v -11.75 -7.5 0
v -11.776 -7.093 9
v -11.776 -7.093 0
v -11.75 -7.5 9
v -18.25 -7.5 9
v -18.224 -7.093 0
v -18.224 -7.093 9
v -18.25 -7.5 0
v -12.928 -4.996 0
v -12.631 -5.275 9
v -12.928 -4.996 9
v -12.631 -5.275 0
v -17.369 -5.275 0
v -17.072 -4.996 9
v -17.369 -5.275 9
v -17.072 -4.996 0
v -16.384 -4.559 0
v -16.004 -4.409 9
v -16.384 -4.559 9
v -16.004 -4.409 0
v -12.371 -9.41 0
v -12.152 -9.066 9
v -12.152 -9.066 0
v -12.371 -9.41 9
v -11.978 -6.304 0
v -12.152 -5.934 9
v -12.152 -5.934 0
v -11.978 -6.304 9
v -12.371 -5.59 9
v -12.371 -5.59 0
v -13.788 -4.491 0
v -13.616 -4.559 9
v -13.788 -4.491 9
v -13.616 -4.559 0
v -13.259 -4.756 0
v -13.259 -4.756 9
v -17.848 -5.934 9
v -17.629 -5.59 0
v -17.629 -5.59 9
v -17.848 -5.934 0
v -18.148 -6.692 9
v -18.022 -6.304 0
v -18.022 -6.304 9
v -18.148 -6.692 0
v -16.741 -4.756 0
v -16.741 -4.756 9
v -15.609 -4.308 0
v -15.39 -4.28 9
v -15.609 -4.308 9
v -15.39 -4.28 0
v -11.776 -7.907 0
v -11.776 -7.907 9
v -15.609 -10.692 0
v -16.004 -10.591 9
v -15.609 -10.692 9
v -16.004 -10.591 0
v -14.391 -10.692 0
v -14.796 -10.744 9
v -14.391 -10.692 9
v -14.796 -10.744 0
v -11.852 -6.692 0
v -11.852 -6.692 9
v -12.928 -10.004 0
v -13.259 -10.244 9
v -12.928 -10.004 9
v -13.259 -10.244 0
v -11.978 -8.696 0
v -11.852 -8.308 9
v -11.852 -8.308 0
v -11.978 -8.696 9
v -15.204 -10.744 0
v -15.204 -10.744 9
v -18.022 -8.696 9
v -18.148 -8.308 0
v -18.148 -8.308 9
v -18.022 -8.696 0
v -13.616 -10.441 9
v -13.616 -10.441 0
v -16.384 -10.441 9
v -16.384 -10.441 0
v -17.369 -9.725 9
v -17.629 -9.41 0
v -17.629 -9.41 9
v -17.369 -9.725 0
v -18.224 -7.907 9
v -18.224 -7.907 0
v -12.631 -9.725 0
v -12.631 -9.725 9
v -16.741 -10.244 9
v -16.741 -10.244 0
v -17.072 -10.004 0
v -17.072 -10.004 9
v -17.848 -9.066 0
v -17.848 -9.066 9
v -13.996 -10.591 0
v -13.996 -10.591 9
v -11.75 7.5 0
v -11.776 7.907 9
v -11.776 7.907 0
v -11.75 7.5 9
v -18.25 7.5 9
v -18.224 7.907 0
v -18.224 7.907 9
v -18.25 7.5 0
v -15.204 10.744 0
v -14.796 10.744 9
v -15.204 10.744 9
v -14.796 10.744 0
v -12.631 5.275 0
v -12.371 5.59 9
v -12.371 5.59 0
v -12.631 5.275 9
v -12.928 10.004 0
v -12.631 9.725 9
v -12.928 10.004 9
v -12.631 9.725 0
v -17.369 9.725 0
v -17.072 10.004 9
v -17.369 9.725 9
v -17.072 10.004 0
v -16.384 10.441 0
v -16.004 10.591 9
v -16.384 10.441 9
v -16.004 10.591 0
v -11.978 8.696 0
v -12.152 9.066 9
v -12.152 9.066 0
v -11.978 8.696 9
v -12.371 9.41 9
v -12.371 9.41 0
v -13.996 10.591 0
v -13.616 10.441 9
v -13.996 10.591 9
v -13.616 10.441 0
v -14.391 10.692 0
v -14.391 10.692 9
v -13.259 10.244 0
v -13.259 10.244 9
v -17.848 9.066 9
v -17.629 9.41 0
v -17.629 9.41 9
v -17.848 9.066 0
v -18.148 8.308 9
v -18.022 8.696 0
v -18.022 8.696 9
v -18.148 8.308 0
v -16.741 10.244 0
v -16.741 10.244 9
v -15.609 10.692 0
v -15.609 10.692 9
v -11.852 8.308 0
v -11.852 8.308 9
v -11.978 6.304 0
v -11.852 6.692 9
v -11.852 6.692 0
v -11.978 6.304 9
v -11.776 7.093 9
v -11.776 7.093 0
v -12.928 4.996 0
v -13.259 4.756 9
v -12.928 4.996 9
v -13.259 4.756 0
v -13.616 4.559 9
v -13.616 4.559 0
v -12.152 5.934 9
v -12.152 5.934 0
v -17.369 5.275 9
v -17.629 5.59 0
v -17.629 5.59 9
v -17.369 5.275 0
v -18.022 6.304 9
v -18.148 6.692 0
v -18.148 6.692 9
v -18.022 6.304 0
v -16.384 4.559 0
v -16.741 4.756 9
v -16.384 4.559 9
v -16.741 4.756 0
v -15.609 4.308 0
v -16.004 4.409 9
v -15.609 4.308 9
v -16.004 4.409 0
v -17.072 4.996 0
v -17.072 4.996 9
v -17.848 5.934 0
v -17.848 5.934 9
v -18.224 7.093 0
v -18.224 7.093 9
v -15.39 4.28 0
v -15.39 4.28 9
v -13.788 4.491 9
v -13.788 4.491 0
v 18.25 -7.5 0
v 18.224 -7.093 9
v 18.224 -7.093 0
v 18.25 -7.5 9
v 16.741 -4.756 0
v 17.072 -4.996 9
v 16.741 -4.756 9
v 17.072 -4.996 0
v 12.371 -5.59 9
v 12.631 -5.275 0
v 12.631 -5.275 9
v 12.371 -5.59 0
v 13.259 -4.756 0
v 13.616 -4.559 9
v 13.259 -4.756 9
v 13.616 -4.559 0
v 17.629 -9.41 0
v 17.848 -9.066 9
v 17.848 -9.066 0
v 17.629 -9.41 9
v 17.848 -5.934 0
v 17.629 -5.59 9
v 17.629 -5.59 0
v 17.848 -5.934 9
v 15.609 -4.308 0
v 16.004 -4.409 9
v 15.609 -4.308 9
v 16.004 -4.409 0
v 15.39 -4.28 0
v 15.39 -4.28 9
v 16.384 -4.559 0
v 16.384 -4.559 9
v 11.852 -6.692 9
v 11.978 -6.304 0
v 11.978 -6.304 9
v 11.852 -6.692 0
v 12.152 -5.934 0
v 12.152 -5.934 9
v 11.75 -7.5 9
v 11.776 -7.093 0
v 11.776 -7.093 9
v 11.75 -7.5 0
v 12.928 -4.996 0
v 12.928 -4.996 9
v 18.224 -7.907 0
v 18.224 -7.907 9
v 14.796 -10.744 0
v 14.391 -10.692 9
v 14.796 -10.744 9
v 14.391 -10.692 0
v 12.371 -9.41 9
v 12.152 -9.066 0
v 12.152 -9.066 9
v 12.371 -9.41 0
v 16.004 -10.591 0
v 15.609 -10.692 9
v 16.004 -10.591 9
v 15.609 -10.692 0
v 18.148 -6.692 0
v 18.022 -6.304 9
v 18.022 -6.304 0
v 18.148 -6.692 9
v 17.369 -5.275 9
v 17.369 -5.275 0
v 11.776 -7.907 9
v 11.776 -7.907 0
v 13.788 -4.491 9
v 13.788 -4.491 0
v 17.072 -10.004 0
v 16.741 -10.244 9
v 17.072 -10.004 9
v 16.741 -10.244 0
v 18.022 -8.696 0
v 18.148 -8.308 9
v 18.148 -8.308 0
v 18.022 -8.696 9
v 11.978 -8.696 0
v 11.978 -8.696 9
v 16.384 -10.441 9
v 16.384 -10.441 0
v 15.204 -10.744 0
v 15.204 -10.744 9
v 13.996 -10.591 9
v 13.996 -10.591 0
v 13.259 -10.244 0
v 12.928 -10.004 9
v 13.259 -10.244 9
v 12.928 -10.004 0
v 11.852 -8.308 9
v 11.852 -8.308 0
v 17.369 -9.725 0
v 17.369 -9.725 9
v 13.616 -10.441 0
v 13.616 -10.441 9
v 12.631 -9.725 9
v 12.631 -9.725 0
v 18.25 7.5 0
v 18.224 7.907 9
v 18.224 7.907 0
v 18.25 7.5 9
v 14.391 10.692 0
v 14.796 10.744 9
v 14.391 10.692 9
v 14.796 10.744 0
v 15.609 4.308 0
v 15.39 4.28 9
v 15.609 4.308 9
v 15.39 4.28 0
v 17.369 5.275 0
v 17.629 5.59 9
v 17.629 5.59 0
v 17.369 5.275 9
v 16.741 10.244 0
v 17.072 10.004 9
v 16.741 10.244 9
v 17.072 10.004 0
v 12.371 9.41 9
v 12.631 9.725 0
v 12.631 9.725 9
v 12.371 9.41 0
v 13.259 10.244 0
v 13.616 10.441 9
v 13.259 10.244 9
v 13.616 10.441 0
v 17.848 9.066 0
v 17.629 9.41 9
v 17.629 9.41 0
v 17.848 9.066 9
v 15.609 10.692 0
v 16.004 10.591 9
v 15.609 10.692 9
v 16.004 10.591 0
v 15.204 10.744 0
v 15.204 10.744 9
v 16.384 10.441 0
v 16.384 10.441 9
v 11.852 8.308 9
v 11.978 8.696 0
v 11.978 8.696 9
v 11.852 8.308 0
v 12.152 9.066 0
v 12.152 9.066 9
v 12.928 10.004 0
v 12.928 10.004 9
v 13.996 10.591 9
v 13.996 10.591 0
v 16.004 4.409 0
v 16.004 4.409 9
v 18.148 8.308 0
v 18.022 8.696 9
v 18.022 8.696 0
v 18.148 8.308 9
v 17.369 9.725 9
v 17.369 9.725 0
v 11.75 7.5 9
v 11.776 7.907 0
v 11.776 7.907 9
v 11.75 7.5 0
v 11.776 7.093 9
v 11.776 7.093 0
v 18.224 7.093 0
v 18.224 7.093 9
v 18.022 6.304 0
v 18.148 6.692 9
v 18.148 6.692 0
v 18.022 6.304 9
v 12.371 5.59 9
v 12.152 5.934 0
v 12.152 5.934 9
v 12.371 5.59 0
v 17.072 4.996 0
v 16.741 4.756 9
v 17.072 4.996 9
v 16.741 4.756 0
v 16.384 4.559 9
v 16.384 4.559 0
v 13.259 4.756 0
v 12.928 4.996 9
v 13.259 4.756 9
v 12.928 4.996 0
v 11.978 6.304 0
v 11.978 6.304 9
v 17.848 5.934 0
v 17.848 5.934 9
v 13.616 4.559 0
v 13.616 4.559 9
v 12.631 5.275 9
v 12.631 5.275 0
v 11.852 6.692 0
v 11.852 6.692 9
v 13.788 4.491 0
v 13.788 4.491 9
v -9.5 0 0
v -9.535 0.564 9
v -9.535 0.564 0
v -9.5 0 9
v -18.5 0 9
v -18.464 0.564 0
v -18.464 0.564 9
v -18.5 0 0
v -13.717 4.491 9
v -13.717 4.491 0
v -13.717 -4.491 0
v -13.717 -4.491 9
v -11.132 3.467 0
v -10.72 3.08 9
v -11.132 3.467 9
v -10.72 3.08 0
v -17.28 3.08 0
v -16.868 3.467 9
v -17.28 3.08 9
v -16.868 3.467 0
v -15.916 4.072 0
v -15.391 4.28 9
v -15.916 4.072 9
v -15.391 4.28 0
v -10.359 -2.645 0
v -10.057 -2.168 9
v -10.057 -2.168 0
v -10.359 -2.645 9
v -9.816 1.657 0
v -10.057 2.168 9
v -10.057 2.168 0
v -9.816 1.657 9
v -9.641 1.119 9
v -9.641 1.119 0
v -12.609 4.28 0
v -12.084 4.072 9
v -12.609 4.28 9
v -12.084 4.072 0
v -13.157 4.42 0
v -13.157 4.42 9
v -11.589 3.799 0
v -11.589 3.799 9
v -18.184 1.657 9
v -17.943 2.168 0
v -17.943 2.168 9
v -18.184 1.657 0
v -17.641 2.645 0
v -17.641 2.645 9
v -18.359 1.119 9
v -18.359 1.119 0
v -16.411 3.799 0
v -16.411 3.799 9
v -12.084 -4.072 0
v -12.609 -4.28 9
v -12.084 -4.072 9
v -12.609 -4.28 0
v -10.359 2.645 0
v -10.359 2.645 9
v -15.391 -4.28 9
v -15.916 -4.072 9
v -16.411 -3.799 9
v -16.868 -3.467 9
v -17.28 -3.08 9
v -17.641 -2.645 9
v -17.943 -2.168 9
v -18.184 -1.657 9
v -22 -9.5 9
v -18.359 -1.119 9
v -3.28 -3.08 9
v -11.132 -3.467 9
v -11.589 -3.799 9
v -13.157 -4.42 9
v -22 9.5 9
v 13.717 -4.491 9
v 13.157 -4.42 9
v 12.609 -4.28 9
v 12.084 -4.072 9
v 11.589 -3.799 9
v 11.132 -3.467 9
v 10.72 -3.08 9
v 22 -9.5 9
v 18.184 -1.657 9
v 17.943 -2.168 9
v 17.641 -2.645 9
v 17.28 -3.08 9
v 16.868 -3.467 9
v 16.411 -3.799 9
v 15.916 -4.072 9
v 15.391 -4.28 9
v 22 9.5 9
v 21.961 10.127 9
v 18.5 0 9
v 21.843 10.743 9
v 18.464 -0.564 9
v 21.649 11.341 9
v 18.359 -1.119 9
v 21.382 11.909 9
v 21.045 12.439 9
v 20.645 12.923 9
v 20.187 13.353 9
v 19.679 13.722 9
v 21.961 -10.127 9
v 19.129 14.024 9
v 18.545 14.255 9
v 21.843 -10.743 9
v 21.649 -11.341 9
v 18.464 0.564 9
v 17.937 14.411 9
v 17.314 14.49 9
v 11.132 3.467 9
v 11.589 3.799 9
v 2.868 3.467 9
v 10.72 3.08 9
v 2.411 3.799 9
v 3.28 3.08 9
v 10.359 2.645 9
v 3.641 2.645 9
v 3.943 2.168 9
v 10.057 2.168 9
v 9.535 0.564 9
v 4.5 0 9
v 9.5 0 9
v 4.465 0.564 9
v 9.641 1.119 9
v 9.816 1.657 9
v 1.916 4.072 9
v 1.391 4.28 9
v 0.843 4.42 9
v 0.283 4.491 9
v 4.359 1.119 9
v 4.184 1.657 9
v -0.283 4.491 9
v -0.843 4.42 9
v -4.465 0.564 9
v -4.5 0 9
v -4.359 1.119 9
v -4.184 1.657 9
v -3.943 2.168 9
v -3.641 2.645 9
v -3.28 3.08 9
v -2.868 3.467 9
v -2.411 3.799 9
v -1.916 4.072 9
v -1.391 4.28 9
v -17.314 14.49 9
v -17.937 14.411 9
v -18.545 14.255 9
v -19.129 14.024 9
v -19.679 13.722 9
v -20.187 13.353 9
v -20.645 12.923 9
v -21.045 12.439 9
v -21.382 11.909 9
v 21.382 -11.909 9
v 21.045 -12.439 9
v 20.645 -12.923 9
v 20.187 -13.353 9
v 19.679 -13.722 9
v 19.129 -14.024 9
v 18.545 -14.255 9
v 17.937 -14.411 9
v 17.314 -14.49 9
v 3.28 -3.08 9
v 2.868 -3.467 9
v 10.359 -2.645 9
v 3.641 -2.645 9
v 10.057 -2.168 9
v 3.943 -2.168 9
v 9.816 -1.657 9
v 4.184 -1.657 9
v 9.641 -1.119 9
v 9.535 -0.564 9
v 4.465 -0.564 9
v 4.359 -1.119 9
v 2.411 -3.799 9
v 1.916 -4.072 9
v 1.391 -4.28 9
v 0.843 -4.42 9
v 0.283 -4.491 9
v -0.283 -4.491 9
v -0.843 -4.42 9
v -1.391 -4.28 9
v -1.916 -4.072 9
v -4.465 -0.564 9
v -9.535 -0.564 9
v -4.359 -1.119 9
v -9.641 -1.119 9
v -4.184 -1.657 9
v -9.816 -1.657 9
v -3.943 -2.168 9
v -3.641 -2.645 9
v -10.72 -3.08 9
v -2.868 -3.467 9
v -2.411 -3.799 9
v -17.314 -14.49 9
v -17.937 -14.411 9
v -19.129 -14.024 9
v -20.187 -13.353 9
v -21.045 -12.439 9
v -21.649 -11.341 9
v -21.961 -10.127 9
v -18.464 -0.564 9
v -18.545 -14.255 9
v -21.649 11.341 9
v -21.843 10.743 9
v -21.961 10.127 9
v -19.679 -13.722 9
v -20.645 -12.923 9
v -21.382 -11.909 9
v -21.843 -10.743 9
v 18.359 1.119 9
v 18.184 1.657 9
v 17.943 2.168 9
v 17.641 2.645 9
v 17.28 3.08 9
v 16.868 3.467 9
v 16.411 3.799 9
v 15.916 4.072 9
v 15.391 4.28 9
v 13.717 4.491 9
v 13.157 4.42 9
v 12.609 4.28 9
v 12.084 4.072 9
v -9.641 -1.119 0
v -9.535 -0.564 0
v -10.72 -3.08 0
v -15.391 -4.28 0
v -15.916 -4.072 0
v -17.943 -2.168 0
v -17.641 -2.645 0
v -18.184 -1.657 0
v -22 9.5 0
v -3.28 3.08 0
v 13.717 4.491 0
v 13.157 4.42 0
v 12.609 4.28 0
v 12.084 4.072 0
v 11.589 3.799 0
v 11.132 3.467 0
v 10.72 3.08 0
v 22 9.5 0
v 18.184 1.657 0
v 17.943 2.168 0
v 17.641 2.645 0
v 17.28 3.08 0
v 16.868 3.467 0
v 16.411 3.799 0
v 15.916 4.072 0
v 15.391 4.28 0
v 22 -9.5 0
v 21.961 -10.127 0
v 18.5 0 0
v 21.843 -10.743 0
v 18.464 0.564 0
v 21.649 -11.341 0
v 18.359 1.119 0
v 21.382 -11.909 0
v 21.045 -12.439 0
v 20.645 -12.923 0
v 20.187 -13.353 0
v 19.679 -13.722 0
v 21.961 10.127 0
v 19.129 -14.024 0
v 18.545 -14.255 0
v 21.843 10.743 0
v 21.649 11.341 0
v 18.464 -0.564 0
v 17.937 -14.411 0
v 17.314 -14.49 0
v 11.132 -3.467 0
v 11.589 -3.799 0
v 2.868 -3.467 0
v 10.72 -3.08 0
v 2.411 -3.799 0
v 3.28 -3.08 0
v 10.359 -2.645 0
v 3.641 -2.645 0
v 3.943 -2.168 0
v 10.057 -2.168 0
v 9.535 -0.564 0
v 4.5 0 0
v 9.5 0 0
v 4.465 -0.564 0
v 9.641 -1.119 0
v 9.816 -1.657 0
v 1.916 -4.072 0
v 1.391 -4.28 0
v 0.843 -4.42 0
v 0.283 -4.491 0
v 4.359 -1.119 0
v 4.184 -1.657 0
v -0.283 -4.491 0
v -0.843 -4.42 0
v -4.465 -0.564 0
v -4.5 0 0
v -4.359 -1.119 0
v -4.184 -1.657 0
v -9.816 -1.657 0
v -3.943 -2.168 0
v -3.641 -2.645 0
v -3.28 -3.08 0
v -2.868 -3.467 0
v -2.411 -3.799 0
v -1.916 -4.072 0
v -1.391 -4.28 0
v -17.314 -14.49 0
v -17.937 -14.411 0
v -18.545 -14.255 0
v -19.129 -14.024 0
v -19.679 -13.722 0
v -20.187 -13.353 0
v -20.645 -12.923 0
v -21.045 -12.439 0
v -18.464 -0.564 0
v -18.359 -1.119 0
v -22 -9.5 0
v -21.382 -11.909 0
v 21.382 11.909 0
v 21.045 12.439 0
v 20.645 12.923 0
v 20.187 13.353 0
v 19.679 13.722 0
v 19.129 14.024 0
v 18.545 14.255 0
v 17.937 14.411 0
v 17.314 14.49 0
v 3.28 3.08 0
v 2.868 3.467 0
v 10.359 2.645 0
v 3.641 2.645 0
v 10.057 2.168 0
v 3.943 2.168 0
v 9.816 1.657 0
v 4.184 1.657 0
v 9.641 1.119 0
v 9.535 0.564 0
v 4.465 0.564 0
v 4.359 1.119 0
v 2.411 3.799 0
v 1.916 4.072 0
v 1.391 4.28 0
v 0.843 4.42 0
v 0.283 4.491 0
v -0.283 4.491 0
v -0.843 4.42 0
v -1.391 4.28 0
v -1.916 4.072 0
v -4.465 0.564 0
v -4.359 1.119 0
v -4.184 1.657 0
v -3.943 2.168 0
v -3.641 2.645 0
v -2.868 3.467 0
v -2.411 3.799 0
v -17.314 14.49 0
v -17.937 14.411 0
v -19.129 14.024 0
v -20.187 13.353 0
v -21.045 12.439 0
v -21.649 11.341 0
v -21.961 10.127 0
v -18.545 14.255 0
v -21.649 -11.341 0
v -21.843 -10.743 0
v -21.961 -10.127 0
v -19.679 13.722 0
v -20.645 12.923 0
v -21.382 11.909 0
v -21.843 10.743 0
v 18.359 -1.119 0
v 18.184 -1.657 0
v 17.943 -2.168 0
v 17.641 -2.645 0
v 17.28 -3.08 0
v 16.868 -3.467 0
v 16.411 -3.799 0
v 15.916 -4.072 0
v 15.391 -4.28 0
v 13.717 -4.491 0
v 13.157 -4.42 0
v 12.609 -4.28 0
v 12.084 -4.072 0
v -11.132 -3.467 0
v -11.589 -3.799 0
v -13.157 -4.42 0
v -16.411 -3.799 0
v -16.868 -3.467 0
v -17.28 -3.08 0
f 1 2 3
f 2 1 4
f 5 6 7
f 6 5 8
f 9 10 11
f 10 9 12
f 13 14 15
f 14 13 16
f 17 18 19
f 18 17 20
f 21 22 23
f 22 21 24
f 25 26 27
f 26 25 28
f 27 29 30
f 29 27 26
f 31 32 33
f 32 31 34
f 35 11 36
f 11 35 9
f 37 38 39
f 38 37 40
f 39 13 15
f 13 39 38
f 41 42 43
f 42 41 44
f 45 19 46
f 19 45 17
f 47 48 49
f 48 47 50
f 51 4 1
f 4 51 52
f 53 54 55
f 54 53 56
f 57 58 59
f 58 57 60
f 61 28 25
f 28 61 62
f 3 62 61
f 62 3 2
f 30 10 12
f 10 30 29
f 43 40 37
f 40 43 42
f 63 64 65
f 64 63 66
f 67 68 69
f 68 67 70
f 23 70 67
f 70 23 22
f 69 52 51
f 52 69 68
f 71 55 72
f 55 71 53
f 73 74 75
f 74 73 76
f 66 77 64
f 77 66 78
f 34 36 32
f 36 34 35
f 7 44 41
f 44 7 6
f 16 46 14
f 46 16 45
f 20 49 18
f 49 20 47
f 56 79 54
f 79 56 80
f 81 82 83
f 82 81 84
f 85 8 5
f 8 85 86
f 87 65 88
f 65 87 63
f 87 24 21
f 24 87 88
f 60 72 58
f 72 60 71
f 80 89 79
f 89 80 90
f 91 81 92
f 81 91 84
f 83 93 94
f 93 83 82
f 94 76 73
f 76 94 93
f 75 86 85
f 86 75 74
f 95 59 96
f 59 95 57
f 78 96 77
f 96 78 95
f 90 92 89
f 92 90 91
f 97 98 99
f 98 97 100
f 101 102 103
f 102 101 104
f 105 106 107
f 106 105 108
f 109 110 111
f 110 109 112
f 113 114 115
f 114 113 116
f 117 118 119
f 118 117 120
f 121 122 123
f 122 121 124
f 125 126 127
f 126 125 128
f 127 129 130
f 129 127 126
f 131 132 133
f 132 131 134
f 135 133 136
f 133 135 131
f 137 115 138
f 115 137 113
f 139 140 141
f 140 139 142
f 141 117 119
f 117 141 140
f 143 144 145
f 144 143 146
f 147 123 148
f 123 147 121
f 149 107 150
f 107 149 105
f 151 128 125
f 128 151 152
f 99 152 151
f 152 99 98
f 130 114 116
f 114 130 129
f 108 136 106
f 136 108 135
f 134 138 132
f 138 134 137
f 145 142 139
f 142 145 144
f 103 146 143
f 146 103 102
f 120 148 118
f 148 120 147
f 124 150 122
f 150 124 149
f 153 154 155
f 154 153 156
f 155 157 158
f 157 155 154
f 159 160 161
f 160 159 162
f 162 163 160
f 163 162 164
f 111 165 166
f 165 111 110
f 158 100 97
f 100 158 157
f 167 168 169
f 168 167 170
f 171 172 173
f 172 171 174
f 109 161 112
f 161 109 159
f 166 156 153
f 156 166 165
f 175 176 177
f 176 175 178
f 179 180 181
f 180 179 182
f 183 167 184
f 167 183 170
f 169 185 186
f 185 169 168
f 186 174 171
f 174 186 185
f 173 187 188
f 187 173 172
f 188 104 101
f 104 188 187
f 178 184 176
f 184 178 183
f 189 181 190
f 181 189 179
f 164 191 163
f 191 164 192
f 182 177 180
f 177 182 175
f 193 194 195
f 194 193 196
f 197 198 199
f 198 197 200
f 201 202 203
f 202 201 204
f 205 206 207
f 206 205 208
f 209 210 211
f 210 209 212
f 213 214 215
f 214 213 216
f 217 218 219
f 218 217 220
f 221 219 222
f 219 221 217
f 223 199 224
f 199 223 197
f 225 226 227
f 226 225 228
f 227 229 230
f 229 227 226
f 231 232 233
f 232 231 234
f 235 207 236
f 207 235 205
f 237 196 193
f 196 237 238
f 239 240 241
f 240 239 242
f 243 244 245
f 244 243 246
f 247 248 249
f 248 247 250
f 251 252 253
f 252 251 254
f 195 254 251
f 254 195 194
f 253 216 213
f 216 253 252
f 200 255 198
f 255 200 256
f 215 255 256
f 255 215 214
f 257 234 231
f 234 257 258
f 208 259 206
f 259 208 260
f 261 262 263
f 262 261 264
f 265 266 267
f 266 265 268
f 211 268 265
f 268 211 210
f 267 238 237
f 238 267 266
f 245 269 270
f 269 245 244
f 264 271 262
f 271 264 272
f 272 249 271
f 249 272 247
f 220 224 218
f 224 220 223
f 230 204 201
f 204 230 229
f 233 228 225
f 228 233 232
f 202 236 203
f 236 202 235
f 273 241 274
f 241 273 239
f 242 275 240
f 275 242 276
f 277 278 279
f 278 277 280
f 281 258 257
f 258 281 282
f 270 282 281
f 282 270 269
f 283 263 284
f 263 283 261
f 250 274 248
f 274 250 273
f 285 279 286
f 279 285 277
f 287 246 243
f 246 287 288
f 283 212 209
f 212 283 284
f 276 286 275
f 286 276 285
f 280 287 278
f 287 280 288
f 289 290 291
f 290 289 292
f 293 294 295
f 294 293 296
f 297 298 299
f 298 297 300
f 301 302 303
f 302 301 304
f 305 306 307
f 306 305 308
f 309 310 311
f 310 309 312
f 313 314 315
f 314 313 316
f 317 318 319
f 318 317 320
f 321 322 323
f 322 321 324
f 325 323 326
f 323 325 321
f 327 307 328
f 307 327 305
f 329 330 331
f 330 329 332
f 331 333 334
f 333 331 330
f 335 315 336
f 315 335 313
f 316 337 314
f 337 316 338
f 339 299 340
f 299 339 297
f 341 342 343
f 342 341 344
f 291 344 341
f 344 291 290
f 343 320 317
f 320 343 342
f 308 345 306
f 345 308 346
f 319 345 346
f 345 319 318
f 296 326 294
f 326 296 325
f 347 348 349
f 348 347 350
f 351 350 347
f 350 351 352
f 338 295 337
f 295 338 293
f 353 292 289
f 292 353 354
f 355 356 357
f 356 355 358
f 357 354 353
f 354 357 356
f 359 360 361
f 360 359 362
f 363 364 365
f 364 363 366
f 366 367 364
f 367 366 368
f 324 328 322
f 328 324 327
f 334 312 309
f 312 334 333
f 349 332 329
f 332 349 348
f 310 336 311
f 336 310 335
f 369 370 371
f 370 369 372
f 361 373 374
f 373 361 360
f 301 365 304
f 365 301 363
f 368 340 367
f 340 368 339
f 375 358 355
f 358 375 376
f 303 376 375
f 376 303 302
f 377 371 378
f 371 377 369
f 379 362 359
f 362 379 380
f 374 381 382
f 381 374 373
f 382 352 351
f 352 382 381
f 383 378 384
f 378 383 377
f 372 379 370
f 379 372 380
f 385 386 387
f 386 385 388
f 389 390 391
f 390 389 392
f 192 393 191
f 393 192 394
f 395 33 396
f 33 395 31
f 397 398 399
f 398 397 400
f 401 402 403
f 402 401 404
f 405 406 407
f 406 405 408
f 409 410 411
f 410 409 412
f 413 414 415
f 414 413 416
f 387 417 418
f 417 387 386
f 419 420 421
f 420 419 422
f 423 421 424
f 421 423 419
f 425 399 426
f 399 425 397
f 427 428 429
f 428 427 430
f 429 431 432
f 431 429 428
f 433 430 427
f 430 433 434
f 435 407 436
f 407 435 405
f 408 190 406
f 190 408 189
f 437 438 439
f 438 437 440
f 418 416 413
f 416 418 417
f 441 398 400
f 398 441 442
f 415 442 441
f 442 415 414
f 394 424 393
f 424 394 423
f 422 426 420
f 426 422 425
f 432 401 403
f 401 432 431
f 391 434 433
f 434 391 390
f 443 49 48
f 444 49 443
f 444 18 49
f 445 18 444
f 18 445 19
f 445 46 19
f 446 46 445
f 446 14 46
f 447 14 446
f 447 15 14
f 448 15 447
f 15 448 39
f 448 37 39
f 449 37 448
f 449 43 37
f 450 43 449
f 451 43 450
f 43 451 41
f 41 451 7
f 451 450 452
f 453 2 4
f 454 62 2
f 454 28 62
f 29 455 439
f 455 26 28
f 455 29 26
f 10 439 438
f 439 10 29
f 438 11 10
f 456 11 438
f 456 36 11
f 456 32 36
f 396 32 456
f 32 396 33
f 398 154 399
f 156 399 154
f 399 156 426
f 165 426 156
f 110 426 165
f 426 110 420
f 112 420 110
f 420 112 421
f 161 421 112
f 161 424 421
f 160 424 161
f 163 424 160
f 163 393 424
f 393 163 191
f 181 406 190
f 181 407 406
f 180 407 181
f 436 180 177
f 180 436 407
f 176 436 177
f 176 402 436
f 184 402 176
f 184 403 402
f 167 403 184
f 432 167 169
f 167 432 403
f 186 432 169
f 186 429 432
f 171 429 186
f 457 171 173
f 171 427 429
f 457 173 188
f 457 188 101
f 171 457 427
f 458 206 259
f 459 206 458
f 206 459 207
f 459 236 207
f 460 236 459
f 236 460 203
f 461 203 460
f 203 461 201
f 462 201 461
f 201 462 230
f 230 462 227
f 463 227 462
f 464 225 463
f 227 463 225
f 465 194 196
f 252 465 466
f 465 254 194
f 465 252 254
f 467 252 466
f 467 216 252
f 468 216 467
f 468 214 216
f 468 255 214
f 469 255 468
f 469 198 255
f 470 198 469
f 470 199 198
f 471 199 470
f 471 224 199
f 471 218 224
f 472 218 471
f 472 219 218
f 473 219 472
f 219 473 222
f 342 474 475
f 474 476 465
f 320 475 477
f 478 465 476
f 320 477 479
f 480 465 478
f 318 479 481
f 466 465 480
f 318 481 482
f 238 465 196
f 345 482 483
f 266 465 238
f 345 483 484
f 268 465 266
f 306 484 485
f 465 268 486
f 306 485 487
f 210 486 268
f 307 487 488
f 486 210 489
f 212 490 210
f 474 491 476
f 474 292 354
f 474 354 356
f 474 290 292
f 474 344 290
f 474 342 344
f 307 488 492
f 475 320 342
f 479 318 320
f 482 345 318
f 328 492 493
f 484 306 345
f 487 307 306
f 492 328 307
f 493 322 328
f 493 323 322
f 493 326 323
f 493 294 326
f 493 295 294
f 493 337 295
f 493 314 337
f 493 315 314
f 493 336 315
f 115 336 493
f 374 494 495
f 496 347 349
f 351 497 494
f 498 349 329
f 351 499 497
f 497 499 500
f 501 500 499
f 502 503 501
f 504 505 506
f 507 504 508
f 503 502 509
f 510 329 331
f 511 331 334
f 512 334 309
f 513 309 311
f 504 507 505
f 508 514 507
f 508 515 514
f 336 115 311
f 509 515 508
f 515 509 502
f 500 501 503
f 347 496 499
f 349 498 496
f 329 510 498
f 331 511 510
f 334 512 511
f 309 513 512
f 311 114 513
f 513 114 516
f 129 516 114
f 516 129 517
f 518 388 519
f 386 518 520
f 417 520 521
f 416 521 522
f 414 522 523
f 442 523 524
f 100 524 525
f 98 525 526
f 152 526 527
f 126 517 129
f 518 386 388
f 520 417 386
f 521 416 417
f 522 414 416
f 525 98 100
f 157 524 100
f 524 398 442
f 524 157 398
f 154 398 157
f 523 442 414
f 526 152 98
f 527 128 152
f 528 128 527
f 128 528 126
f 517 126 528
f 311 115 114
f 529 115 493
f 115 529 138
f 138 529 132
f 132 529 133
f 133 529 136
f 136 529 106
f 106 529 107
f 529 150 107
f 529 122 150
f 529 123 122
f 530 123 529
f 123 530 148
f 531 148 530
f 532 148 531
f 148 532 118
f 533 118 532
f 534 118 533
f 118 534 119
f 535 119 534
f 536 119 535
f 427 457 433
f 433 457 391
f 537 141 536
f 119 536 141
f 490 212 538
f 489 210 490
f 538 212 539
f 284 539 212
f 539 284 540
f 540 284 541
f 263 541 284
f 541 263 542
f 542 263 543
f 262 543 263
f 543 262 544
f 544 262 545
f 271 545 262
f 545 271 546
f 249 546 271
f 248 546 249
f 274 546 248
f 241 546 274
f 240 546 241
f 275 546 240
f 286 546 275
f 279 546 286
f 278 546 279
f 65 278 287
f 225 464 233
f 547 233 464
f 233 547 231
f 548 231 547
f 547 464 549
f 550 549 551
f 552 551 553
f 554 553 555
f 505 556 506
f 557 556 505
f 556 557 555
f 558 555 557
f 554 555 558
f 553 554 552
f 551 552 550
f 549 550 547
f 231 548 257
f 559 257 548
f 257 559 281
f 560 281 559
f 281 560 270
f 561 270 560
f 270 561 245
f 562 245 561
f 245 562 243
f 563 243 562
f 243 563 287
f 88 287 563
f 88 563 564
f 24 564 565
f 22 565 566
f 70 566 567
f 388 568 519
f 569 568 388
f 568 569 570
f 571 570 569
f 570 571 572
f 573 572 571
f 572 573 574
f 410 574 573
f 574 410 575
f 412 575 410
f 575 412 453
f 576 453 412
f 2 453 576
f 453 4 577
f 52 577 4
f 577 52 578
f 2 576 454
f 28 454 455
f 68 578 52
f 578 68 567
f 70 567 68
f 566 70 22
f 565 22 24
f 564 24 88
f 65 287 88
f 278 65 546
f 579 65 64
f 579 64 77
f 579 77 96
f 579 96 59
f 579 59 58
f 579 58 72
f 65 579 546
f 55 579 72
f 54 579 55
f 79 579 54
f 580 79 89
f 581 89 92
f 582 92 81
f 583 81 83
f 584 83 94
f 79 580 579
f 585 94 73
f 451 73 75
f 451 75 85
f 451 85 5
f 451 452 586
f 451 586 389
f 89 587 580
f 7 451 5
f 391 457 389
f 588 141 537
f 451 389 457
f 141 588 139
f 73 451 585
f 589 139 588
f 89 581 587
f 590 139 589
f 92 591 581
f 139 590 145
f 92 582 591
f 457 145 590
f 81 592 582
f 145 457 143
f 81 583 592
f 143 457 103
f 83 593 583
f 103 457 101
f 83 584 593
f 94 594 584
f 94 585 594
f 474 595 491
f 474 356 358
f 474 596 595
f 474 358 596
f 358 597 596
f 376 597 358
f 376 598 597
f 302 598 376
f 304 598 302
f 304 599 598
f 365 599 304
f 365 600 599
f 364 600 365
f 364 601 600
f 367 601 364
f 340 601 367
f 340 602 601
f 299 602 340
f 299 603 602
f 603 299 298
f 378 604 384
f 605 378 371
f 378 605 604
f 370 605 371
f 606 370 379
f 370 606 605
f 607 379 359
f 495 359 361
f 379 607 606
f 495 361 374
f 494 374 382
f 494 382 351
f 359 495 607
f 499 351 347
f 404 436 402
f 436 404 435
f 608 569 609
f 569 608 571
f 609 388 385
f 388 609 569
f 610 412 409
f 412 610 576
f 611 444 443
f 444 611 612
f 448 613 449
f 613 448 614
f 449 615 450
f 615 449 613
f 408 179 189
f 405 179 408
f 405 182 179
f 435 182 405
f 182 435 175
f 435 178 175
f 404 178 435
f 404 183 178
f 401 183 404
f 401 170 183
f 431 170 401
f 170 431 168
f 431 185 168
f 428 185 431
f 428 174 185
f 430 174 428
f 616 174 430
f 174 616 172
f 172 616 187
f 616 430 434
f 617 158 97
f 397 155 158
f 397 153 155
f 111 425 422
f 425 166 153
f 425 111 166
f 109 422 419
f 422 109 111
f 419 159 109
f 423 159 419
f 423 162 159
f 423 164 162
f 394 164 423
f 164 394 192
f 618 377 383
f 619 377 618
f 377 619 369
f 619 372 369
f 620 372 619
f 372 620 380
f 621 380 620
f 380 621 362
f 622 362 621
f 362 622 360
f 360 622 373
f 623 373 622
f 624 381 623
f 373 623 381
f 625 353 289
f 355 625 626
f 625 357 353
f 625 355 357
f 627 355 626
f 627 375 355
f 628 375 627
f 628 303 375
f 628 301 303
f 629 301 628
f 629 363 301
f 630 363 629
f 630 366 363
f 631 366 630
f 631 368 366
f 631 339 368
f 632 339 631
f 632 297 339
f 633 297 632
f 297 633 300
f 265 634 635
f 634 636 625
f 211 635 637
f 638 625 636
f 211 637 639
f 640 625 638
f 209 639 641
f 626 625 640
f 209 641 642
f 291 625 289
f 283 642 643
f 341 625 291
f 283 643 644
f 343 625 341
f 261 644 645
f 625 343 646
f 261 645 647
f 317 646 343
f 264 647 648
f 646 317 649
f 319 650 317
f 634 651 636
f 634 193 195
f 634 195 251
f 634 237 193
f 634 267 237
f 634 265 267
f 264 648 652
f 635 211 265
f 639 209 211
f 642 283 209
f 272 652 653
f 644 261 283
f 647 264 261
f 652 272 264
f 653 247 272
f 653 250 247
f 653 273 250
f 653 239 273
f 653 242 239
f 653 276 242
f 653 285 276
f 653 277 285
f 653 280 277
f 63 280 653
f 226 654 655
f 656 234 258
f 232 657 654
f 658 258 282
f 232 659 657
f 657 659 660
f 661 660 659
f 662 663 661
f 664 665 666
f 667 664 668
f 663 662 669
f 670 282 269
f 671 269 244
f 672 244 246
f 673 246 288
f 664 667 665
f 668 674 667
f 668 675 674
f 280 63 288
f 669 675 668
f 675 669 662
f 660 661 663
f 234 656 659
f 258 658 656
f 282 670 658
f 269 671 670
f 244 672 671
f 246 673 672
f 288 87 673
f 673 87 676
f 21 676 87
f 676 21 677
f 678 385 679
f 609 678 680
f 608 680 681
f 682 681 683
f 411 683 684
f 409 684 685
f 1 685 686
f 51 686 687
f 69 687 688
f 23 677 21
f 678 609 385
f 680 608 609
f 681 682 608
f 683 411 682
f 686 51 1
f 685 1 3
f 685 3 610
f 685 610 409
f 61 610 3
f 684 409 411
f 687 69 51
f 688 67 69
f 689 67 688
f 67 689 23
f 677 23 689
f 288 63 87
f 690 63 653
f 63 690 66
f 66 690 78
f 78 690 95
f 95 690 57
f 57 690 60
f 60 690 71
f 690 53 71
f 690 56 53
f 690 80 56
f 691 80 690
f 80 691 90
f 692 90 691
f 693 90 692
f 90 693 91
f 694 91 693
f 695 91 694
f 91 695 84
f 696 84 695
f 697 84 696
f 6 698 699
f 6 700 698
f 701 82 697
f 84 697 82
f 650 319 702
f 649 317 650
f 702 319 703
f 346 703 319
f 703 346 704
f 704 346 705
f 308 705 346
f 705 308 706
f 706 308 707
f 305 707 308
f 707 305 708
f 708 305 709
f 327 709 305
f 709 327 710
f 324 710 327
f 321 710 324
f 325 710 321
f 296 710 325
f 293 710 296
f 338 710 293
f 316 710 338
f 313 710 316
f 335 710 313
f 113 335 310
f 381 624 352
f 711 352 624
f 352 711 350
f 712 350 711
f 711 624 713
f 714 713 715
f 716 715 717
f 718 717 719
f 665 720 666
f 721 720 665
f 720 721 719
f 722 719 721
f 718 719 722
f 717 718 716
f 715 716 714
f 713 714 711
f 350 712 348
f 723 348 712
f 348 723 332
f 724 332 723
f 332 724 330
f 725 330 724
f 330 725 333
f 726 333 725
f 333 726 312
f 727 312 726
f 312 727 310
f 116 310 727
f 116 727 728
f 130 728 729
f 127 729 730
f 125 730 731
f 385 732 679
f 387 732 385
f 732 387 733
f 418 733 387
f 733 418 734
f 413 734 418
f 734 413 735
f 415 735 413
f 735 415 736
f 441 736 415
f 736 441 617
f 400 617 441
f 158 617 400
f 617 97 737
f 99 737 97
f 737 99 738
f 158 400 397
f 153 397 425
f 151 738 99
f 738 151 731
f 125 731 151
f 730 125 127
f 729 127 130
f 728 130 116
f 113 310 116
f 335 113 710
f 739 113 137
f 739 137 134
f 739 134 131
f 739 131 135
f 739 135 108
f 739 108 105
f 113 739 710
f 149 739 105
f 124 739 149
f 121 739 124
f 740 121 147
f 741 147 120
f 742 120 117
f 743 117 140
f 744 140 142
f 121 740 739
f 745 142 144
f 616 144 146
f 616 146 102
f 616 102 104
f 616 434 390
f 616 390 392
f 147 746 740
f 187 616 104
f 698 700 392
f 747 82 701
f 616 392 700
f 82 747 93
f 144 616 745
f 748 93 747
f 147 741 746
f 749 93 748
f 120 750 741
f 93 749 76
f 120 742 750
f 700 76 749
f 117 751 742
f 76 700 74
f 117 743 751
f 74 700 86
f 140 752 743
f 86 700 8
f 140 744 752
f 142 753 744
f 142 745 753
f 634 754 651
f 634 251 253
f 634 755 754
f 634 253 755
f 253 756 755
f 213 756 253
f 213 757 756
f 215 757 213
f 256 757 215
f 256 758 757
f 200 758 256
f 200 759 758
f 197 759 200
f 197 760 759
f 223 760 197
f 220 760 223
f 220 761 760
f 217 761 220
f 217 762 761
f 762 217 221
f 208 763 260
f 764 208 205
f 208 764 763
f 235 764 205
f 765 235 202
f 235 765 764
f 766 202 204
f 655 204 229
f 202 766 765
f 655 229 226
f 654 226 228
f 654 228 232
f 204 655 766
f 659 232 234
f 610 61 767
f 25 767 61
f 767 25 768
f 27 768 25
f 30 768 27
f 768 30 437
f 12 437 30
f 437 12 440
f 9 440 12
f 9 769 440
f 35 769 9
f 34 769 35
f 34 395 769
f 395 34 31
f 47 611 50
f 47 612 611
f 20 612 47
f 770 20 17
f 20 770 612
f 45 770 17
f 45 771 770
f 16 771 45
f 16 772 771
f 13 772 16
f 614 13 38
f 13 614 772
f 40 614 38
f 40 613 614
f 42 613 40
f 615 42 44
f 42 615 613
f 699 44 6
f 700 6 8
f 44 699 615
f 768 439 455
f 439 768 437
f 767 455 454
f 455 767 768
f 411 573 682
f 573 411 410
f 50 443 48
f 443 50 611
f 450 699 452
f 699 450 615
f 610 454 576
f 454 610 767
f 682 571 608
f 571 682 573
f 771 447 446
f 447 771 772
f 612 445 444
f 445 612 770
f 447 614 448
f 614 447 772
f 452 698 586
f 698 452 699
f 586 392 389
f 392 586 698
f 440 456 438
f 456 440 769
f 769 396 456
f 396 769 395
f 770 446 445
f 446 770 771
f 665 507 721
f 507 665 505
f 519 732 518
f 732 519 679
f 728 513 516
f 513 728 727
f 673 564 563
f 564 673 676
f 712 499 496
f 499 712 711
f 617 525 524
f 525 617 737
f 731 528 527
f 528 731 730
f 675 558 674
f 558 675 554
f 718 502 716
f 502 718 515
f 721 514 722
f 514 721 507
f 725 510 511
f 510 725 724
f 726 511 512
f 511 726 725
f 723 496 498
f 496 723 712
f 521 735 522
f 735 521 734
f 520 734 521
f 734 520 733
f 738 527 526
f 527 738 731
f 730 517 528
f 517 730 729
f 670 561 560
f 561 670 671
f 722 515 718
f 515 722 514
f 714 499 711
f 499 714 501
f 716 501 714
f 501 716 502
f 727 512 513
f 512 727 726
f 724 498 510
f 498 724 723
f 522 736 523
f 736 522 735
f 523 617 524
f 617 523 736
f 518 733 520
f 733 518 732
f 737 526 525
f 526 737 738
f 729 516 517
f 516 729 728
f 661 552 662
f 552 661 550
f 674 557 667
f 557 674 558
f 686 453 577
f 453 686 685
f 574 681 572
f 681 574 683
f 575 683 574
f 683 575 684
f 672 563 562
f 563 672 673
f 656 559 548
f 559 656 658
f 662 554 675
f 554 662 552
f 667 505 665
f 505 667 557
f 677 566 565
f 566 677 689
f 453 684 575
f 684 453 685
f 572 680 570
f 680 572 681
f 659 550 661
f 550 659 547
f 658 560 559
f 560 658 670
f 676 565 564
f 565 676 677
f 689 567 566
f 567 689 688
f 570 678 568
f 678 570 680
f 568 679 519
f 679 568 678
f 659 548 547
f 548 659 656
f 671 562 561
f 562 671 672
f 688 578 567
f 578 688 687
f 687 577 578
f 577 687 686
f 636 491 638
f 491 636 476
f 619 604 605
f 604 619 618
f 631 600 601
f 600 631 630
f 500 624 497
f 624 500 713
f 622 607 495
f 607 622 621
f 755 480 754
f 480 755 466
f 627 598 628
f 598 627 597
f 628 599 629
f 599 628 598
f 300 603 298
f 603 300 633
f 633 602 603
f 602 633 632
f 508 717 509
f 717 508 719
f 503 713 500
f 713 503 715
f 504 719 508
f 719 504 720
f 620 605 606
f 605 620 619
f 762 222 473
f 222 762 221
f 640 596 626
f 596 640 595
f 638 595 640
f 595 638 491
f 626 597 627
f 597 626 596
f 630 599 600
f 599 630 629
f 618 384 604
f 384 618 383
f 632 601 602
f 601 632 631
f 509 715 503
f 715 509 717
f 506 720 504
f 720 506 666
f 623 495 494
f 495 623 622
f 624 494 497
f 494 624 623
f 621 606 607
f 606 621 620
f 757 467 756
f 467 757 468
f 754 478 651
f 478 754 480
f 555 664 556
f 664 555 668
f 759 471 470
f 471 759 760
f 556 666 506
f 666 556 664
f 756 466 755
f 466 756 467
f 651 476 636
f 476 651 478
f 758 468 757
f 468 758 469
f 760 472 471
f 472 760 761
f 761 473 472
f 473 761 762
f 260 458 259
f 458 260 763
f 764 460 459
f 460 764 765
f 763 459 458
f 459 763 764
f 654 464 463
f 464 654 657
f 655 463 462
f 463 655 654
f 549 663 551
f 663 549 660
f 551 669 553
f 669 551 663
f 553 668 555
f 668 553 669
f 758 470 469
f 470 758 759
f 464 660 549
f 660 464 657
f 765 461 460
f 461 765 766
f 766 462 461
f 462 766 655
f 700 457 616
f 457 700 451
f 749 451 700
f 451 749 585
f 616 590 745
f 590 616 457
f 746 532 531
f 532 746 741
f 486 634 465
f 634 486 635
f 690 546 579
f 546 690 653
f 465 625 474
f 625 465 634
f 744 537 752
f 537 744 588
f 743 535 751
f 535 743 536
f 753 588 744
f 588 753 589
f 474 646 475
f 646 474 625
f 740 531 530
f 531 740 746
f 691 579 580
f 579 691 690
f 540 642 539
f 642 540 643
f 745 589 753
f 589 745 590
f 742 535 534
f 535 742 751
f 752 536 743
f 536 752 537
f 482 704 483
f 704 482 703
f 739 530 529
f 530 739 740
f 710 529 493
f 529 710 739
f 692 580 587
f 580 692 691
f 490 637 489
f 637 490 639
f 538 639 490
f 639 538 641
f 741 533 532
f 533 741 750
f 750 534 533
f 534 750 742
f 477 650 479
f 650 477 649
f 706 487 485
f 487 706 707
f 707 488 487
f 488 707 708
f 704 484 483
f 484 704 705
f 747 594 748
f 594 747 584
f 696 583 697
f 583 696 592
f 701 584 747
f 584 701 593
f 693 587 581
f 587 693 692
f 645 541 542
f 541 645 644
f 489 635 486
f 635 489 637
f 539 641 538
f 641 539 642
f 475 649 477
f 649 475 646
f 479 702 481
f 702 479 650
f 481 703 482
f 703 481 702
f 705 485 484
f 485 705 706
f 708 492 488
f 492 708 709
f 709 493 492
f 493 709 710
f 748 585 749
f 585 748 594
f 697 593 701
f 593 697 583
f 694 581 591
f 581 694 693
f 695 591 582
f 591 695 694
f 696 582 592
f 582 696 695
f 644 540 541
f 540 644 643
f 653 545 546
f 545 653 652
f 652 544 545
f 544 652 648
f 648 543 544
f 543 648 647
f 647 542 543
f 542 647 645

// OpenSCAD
$fn = 50;


difference() {
	union() {
		hull() {
			translate(v = [-17.0000000000, 9.5000000000, 0]) {
				cylinder(h = 9, r = 5);
			}
			translate(v = [17.0000000000, 9.5000000000, 0]) {
				cylinder(h = 9, r = 5);
			}
			translate(v = [-17.0000000000, -9.5000000000, 0]) {
				cylinder(h = 9, r = 5);
			}
			translate(v = [17.0000000000, -9.5000000000, 0]) {
				cylinder(h = 9, r = 5);
			}
		}
	}
	union() {
		#translate(v = [-15.0000000000, -7.5000000000, -100.0000000000]) {
			cylinder(h = 200, r = 3.2500000000);
		}
		#translate(v = [-15.0000000000, 7.5000000000, -100.0000000000]) {
			cylinder(h = 200, r = 3.2500000000);
		}
		#translate(v = [15.0000000000, -7.5000000000, -100.0000000000]) {
			cylinder(h = 200, r = 3.2500000000);
		}
		#translate(v = [15.0000000000, 7.5000000000, -100.0000000000]) {
			cylinder(h = 200, r = 3.2500000000);
		}
		#translate(v = [-14.0000000000, 0, 0]) {
			cylinder(h = 9, r = 4.5000000000);
		}
		#cylinder(h = 9, r = 4.5000000000);
		#translate(v = [14.0000000000, 0, 0]) {
			cylinder(h = 9, r = 4.5000000000);
		}
	}
}
